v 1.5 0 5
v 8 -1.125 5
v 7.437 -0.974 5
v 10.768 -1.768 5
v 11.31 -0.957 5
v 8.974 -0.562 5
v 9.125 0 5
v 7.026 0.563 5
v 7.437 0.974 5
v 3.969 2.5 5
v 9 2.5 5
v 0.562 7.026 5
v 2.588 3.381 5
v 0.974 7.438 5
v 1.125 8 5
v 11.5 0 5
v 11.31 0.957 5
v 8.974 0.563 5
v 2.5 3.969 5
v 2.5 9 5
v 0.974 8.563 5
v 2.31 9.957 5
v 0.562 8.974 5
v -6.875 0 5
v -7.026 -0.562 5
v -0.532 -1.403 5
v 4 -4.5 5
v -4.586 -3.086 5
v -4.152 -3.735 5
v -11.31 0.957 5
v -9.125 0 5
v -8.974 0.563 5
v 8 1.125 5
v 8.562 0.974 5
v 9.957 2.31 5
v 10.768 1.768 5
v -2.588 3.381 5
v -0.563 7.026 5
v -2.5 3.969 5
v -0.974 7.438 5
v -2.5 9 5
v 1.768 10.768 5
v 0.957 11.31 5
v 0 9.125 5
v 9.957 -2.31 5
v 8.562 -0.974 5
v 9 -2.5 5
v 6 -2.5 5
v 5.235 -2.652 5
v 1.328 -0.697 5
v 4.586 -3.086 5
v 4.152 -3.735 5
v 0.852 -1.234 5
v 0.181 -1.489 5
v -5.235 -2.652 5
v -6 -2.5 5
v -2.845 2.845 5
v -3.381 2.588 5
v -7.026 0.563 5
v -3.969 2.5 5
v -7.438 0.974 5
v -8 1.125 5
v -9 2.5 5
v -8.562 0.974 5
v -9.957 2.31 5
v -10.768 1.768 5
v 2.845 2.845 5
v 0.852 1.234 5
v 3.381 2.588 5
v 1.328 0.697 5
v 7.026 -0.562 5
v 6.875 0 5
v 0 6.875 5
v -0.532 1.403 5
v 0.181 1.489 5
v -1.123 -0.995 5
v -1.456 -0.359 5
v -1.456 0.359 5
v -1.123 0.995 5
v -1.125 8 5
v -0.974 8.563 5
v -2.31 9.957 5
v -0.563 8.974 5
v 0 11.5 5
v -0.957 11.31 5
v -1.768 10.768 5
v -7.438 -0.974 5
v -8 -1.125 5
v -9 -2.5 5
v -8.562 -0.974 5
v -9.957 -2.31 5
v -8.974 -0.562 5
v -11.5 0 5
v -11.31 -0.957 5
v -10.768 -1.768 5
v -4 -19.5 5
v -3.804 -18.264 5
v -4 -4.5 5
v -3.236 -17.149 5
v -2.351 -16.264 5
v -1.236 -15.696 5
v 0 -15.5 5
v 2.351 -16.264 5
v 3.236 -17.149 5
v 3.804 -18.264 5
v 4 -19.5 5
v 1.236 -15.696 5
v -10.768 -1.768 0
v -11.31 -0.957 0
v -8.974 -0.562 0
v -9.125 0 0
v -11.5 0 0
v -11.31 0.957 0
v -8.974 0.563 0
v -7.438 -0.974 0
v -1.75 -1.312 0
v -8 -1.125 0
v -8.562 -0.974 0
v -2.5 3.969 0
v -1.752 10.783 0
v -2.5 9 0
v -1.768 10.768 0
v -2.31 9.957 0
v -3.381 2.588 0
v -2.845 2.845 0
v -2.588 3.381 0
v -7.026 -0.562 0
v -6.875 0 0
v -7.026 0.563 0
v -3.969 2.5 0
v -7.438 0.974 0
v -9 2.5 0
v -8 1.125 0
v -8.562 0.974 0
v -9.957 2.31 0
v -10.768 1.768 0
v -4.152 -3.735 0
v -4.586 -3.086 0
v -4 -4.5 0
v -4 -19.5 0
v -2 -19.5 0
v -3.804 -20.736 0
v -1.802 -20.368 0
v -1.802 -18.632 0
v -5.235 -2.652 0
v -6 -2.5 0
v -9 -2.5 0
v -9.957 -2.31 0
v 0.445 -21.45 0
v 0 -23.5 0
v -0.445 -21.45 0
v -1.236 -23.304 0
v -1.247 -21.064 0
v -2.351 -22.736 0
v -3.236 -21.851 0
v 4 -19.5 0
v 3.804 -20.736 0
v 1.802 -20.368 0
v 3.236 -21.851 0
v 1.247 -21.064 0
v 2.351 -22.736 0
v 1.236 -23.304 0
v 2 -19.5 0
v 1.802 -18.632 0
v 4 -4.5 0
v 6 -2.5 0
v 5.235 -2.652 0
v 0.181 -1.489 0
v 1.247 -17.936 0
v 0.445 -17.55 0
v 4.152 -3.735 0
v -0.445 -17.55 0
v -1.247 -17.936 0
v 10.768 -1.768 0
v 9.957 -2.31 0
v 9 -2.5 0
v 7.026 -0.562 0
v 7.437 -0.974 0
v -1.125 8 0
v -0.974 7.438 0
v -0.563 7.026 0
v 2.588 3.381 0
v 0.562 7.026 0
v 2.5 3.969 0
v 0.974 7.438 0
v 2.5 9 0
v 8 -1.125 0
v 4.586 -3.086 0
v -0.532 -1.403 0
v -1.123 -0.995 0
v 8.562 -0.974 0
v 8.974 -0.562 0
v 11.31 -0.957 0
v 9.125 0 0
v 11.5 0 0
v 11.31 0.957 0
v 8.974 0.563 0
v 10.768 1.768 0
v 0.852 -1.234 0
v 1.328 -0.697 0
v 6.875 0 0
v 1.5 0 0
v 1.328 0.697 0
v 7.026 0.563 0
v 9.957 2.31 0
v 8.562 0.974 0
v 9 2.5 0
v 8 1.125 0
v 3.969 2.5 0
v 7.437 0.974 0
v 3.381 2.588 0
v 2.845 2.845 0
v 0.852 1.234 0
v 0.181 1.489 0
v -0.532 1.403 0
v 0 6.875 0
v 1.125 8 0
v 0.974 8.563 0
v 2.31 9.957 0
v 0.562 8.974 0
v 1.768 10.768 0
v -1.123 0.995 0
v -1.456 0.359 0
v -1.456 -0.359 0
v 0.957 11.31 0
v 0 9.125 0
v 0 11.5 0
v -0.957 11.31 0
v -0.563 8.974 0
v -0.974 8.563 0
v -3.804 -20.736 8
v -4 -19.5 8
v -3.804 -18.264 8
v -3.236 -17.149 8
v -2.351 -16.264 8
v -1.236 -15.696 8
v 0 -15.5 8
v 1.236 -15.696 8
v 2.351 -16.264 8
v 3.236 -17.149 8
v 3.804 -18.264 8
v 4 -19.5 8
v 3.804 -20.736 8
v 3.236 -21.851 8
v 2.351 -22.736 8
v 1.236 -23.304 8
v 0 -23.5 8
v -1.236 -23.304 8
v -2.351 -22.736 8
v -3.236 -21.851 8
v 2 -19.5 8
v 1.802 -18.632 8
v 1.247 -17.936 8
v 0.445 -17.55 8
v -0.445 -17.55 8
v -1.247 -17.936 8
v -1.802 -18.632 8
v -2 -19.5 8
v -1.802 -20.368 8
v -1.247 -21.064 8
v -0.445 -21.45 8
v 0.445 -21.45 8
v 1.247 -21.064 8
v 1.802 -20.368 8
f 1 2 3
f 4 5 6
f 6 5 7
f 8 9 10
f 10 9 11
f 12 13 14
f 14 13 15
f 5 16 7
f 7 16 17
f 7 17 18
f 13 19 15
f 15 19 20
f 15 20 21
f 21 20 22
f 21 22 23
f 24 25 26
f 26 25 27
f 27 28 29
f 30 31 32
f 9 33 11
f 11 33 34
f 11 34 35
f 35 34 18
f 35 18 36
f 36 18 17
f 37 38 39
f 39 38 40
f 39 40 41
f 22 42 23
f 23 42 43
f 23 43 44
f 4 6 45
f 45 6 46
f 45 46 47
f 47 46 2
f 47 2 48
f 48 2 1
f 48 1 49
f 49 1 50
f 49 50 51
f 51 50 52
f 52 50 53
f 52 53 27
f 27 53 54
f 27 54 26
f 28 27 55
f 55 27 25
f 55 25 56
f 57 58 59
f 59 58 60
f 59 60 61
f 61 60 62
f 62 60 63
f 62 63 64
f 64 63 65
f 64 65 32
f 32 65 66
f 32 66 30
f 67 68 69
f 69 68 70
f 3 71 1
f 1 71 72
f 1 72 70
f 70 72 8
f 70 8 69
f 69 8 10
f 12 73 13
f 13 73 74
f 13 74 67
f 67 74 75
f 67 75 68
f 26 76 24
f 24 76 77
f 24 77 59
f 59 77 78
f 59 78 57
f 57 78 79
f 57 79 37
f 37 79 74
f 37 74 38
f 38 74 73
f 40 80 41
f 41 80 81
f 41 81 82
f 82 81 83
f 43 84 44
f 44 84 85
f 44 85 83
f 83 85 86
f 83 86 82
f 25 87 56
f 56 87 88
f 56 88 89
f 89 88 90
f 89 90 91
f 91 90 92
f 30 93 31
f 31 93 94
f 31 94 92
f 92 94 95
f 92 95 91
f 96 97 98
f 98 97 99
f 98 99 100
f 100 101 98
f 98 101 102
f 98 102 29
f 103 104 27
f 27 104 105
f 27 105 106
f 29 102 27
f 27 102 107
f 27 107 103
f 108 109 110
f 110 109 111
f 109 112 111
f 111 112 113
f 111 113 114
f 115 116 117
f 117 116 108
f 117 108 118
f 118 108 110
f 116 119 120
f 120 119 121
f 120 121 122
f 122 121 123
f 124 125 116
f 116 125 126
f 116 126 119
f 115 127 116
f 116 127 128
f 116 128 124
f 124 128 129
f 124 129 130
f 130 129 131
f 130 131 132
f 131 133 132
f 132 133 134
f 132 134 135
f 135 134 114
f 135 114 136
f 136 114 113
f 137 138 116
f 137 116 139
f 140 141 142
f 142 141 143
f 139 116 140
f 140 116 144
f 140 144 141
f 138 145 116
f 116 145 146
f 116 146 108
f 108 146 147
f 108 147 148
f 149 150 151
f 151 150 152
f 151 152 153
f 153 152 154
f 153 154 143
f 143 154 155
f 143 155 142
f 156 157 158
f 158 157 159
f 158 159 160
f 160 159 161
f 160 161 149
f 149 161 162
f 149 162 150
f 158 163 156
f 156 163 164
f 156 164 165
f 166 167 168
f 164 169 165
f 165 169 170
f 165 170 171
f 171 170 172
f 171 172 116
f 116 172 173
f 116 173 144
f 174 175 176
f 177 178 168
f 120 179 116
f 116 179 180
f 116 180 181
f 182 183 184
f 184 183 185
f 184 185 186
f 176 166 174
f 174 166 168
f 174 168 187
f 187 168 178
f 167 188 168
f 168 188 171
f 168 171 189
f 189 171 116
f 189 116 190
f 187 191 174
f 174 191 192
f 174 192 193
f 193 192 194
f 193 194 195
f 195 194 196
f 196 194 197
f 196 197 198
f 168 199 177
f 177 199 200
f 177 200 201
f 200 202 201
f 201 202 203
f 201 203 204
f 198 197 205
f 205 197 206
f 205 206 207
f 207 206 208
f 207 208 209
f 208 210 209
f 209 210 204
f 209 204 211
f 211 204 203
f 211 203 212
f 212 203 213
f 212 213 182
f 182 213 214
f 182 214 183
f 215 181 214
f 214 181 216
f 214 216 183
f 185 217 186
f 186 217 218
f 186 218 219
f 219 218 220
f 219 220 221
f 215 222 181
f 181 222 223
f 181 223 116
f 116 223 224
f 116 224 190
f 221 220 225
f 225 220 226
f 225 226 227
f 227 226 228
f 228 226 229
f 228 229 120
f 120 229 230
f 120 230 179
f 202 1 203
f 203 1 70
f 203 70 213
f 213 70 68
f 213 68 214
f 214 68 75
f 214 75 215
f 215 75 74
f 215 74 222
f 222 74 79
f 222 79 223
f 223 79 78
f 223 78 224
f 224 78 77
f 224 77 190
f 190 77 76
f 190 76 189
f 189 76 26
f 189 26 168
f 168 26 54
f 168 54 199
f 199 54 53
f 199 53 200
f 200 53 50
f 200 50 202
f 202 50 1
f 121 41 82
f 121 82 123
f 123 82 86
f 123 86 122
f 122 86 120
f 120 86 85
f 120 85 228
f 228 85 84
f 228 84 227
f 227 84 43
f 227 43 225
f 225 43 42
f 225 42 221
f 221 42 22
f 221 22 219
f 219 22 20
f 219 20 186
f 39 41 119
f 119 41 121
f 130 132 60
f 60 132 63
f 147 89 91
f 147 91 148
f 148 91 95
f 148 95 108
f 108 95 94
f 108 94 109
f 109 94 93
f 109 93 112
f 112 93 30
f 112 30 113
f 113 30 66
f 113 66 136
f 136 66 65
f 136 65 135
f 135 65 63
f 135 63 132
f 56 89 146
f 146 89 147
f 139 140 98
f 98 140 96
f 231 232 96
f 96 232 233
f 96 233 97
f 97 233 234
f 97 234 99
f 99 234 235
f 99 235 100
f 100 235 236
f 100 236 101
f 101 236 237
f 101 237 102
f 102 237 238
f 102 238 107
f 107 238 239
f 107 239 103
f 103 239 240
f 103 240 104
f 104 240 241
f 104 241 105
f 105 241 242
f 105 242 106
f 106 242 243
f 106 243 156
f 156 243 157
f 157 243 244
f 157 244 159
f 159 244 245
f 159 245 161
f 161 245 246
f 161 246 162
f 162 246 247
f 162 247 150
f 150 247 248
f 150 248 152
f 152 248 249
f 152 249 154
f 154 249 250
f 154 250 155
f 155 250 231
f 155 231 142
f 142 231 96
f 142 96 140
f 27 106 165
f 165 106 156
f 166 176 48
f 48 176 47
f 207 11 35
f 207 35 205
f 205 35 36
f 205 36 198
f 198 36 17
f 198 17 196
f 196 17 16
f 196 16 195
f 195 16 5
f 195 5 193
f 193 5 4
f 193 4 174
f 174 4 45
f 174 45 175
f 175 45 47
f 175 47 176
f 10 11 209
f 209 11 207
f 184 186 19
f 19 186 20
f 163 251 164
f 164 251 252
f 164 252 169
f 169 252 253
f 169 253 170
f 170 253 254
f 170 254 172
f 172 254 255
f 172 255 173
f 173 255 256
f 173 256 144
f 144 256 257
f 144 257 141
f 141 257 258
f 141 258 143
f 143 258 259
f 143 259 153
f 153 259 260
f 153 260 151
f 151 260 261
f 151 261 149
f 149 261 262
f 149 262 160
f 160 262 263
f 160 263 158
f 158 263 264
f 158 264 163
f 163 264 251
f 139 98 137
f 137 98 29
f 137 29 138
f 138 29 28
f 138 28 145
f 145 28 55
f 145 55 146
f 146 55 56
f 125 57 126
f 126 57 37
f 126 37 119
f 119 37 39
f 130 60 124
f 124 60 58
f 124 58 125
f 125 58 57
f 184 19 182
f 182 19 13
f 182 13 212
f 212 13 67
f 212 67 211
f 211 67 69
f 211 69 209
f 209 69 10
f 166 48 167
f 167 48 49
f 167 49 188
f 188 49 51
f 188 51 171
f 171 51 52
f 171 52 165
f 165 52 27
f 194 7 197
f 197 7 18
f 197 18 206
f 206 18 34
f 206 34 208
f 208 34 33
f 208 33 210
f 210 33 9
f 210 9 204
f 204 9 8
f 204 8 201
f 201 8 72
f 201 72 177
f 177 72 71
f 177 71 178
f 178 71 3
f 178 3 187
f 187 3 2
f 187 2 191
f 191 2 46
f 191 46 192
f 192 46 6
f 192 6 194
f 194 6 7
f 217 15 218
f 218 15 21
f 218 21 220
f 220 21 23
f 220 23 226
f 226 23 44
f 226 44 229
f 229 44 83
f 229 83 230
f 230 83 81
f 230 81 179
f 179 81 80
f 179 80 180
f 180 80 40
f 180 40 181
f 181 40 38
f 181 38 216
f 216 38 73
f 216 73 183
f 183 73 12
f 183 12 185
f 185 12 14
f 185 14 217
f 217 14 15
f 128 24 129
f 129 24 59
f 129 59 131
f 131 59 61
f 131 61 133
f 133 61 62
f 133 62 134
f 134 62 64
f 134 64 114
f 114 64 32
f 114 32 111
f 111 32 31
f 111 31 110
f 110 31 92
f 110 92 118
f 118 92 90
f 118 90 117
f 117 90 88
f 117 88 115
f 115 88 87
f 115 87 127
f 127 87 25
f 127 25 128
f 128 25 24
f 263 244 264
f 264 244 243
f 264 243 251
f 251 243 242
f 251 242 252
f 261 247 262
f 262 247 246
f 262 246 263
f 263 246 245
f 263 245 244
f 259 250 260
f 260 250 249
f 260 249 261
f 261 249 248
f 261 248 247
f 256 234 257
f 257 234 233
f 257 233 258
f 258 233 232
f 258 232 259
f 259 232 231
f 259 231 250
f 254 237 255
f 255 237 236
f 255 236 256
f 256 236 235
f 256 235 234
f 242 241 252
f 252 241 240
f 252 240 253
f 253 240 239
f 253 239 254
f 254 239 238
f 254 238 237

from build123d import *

# Parameters (mm, degrees)
ESQUISSE1_R             = 26.25
BOSS_EXTRU_1_DEPTH      = 5
ESQUISSE2_R             = 1.5
ENL_V_MAT_EXTRU_1_DEPTH = 5
ENL_V_START             = -5
ESQUISSE3_R             = 26.25
ESQUISSE3_R_2           = 2
ENL_V_MAT_EXTRU_2_DEPTH = 5
CONG_1_R                = 2
ESQUISSE4_R             = 1.125
ENL_V_MAT_EXTRU_3_DEPTH = 10
ESQUISSE5_R             = 4
ESQUISSE5_R_2           = 2
BOSS_EXTRU_2_DEPTH      = 3


with BuildPart() as part:
    # Esquisse1 → Boss.-Extru.1 (new body)
    with BuildSketch(Plane.XY):
        Circle(ESQUISSE1_R)
    extrude(amount=BOSS_EXTRU_1_DEPTH)

    # Esquisse2 → Enlèv. mat.-Extru.1 (cut)
    with BuildSketch(Plane.XY.offset(5)):
        Circle(ESQUISSE2_R)
    extrude(amount=-ENL_V_MAT_EXTRU_1_DEPTH, mode=Mode.SUBTRACT)

    # Esquisse3 → Enlèv. mat.-Extru.2 (cut)
    # profile 1 of 2: a face of its own
    with BuildSketch(Plane.XY.offset(5).offset(ENL_V_START)):
        Circle(ESQUISSE3_R)
        with BuildLine():
            Line((9, -2.5), (4, -2.5))
            Line((4, -2.5), (4, -19.5))
            ThreePointArc((4, -19.5), (0, -23.5), (-4, -19.5))
            Line((-4, -19.5), (-4, -2.5))
            Line((-4, -2.5), (-9, -2.5))
            ThreePointArc((-9, -2.5), (-11.5, 0), (-9, 2.5))
            Line((-9, 2.5), (-3.122498999, 2.5))
            ThreePointArc((-3.122498999, 2.5), (-2.828427125, 2.828427125), (-2.5, 3.122498999))
            Line((-2.5, 3.122498999), (-2.5, 9))
            ThreePointArc((-2.5, 9), (0, 11.5), (2.5, 9))
            Line((2.5, 9), (2.5, 3.122498999))
            ThreePointArc((2.5, 3.122498999), (2.828427125, 2.828427125), (3.122498999, 2.5))
            Line((3.122498999, 2.5), (9, 2.5))
            ThreePointArc((9, 2.5), (11.5, 0), (9, -2.5))
        make_face(mode=Mode.SUBTRACT)
    # profile 2 of 2: a face of its own
    with BuildSketch(Plane.XY.offset(5).offset(ENL_V_START)):
        with Locations((0, -19.5)):
            Circle(ESQUISSE3_R_2)
    extrude(amount=ENL_V_MAT_EXTRU_2_DEPTH, mode=Mode.SUBTRACT)

    # Congé1
    # the kernel refuses this fillet: 2 mm, written as the material it adds along each edge
    with BuildSketch(Plane(origin=(-4, -2.5, 0), x_dir=(0, -1, 0), z_dir=(0, 0, 1)), Plane(origin=(4, -2.5, 0), x_dir=(1, 0, 0), z_dir=(0, 0, 1))) as cong_1_piece_1:
        with BuildLine():
            CenterArc((CONG_1_R, -CONG_1_R), CONG_1_R, 90, 90)
            Line((0, -CONG_1_R), (0, 0))
            Line((0, 0), (CONG_1_R, 0))
        make_face()
    extrude(amount=5)
    with BuildSketch(Plane(origin=(-3.122498999, 2.5, 0), x_dir=(-1, 0, 0), z_dir=(0, 0, 1))) as cong_1_piece_2:
        with BuildLine():
            CenterArc((0.846127967, -2), CONG_1_R, 90, 41.409622109)
            ThreePointArc((-0.476747688, -0.5), (-0.227558946, -0.260311955), (0, 0))
            Line((0, 0), (0.846127967, 0))
        make_face()
    extrude(amount=5)
    with BuildSketch(Plane(origin=(-2.5, 3.122498999, 0), x_dir=(-0.7237350132500174, -0.6900779887780779, 0), z_dir=(0, 0, 1)), Plane(origin=(3.122498999, 2.5, 0), x_dir=(-0.6900779887780603, 0.7237350132500343, 0), z_dir=(0, 0, 1))) as cong_1_piece_3:
        with BuildLine():
            CenterArc((0.863575741, -1.992528413), CONG_1_R, 94.954095219, 41.409622109)
            Line((-0.583894286, -0.612372436), (0, 0))
            ThreePointArc((0, 0), (0.345430296, -0.014943173), (0.690860592, 0))
        make_face()
    extrude(amount=5)
    with BuildSketch(Plane(origin=(2.5, 3.122498999, 0), x_dir=(0.7237350132500171, -0.6900779887780782, 0), z_dir=(0, 0, 1))) as cong_1_piece_4:
        with BuildLine():
            CenterArc((0.863575741, 1.992528413), CONG_1_R, 223.636282672, 41.409622109)
            Line((-0.583894286, 0.612372436), (0, 0))
            ThreePointArc((0, 0), (0.345430296, 0.014943173), (0.690860592, 0))
        make_face()
    extrude(amount=5)

    # Esquisse4 → Enlèv. mat.-Extru.3 (cut)
    with BuildSketch(Plane.XY.offset(5)):
        with Locations((8, 0)):
            Circle(ESQUISSE4_R)
        with Locations((-8, 0)):
            Circle(ESQUISSE4_R)
        with Locations((0, 8)):
            Circle(ESQUISSE4_R)
    extrude(amount=-ENL_V_MAT_EXTRU_3_DEPTH, mode=Mode.SUBTRACT)

    # Esquisse5 → Boss.-Extru.2 (add)
    with BuildSketch(Plane.XY.offset(5)):
        with Locations((0, -19.5)):
            Circle(ESQUISSE5_R)
        with Locations((0, -19.5)):
            Circle(ESQUISSE5_R_2, mode=Mode.SUBTRACT)
    extrude(amount=BOSS_EXTRU_2_DEPTH)


solid = part.part
